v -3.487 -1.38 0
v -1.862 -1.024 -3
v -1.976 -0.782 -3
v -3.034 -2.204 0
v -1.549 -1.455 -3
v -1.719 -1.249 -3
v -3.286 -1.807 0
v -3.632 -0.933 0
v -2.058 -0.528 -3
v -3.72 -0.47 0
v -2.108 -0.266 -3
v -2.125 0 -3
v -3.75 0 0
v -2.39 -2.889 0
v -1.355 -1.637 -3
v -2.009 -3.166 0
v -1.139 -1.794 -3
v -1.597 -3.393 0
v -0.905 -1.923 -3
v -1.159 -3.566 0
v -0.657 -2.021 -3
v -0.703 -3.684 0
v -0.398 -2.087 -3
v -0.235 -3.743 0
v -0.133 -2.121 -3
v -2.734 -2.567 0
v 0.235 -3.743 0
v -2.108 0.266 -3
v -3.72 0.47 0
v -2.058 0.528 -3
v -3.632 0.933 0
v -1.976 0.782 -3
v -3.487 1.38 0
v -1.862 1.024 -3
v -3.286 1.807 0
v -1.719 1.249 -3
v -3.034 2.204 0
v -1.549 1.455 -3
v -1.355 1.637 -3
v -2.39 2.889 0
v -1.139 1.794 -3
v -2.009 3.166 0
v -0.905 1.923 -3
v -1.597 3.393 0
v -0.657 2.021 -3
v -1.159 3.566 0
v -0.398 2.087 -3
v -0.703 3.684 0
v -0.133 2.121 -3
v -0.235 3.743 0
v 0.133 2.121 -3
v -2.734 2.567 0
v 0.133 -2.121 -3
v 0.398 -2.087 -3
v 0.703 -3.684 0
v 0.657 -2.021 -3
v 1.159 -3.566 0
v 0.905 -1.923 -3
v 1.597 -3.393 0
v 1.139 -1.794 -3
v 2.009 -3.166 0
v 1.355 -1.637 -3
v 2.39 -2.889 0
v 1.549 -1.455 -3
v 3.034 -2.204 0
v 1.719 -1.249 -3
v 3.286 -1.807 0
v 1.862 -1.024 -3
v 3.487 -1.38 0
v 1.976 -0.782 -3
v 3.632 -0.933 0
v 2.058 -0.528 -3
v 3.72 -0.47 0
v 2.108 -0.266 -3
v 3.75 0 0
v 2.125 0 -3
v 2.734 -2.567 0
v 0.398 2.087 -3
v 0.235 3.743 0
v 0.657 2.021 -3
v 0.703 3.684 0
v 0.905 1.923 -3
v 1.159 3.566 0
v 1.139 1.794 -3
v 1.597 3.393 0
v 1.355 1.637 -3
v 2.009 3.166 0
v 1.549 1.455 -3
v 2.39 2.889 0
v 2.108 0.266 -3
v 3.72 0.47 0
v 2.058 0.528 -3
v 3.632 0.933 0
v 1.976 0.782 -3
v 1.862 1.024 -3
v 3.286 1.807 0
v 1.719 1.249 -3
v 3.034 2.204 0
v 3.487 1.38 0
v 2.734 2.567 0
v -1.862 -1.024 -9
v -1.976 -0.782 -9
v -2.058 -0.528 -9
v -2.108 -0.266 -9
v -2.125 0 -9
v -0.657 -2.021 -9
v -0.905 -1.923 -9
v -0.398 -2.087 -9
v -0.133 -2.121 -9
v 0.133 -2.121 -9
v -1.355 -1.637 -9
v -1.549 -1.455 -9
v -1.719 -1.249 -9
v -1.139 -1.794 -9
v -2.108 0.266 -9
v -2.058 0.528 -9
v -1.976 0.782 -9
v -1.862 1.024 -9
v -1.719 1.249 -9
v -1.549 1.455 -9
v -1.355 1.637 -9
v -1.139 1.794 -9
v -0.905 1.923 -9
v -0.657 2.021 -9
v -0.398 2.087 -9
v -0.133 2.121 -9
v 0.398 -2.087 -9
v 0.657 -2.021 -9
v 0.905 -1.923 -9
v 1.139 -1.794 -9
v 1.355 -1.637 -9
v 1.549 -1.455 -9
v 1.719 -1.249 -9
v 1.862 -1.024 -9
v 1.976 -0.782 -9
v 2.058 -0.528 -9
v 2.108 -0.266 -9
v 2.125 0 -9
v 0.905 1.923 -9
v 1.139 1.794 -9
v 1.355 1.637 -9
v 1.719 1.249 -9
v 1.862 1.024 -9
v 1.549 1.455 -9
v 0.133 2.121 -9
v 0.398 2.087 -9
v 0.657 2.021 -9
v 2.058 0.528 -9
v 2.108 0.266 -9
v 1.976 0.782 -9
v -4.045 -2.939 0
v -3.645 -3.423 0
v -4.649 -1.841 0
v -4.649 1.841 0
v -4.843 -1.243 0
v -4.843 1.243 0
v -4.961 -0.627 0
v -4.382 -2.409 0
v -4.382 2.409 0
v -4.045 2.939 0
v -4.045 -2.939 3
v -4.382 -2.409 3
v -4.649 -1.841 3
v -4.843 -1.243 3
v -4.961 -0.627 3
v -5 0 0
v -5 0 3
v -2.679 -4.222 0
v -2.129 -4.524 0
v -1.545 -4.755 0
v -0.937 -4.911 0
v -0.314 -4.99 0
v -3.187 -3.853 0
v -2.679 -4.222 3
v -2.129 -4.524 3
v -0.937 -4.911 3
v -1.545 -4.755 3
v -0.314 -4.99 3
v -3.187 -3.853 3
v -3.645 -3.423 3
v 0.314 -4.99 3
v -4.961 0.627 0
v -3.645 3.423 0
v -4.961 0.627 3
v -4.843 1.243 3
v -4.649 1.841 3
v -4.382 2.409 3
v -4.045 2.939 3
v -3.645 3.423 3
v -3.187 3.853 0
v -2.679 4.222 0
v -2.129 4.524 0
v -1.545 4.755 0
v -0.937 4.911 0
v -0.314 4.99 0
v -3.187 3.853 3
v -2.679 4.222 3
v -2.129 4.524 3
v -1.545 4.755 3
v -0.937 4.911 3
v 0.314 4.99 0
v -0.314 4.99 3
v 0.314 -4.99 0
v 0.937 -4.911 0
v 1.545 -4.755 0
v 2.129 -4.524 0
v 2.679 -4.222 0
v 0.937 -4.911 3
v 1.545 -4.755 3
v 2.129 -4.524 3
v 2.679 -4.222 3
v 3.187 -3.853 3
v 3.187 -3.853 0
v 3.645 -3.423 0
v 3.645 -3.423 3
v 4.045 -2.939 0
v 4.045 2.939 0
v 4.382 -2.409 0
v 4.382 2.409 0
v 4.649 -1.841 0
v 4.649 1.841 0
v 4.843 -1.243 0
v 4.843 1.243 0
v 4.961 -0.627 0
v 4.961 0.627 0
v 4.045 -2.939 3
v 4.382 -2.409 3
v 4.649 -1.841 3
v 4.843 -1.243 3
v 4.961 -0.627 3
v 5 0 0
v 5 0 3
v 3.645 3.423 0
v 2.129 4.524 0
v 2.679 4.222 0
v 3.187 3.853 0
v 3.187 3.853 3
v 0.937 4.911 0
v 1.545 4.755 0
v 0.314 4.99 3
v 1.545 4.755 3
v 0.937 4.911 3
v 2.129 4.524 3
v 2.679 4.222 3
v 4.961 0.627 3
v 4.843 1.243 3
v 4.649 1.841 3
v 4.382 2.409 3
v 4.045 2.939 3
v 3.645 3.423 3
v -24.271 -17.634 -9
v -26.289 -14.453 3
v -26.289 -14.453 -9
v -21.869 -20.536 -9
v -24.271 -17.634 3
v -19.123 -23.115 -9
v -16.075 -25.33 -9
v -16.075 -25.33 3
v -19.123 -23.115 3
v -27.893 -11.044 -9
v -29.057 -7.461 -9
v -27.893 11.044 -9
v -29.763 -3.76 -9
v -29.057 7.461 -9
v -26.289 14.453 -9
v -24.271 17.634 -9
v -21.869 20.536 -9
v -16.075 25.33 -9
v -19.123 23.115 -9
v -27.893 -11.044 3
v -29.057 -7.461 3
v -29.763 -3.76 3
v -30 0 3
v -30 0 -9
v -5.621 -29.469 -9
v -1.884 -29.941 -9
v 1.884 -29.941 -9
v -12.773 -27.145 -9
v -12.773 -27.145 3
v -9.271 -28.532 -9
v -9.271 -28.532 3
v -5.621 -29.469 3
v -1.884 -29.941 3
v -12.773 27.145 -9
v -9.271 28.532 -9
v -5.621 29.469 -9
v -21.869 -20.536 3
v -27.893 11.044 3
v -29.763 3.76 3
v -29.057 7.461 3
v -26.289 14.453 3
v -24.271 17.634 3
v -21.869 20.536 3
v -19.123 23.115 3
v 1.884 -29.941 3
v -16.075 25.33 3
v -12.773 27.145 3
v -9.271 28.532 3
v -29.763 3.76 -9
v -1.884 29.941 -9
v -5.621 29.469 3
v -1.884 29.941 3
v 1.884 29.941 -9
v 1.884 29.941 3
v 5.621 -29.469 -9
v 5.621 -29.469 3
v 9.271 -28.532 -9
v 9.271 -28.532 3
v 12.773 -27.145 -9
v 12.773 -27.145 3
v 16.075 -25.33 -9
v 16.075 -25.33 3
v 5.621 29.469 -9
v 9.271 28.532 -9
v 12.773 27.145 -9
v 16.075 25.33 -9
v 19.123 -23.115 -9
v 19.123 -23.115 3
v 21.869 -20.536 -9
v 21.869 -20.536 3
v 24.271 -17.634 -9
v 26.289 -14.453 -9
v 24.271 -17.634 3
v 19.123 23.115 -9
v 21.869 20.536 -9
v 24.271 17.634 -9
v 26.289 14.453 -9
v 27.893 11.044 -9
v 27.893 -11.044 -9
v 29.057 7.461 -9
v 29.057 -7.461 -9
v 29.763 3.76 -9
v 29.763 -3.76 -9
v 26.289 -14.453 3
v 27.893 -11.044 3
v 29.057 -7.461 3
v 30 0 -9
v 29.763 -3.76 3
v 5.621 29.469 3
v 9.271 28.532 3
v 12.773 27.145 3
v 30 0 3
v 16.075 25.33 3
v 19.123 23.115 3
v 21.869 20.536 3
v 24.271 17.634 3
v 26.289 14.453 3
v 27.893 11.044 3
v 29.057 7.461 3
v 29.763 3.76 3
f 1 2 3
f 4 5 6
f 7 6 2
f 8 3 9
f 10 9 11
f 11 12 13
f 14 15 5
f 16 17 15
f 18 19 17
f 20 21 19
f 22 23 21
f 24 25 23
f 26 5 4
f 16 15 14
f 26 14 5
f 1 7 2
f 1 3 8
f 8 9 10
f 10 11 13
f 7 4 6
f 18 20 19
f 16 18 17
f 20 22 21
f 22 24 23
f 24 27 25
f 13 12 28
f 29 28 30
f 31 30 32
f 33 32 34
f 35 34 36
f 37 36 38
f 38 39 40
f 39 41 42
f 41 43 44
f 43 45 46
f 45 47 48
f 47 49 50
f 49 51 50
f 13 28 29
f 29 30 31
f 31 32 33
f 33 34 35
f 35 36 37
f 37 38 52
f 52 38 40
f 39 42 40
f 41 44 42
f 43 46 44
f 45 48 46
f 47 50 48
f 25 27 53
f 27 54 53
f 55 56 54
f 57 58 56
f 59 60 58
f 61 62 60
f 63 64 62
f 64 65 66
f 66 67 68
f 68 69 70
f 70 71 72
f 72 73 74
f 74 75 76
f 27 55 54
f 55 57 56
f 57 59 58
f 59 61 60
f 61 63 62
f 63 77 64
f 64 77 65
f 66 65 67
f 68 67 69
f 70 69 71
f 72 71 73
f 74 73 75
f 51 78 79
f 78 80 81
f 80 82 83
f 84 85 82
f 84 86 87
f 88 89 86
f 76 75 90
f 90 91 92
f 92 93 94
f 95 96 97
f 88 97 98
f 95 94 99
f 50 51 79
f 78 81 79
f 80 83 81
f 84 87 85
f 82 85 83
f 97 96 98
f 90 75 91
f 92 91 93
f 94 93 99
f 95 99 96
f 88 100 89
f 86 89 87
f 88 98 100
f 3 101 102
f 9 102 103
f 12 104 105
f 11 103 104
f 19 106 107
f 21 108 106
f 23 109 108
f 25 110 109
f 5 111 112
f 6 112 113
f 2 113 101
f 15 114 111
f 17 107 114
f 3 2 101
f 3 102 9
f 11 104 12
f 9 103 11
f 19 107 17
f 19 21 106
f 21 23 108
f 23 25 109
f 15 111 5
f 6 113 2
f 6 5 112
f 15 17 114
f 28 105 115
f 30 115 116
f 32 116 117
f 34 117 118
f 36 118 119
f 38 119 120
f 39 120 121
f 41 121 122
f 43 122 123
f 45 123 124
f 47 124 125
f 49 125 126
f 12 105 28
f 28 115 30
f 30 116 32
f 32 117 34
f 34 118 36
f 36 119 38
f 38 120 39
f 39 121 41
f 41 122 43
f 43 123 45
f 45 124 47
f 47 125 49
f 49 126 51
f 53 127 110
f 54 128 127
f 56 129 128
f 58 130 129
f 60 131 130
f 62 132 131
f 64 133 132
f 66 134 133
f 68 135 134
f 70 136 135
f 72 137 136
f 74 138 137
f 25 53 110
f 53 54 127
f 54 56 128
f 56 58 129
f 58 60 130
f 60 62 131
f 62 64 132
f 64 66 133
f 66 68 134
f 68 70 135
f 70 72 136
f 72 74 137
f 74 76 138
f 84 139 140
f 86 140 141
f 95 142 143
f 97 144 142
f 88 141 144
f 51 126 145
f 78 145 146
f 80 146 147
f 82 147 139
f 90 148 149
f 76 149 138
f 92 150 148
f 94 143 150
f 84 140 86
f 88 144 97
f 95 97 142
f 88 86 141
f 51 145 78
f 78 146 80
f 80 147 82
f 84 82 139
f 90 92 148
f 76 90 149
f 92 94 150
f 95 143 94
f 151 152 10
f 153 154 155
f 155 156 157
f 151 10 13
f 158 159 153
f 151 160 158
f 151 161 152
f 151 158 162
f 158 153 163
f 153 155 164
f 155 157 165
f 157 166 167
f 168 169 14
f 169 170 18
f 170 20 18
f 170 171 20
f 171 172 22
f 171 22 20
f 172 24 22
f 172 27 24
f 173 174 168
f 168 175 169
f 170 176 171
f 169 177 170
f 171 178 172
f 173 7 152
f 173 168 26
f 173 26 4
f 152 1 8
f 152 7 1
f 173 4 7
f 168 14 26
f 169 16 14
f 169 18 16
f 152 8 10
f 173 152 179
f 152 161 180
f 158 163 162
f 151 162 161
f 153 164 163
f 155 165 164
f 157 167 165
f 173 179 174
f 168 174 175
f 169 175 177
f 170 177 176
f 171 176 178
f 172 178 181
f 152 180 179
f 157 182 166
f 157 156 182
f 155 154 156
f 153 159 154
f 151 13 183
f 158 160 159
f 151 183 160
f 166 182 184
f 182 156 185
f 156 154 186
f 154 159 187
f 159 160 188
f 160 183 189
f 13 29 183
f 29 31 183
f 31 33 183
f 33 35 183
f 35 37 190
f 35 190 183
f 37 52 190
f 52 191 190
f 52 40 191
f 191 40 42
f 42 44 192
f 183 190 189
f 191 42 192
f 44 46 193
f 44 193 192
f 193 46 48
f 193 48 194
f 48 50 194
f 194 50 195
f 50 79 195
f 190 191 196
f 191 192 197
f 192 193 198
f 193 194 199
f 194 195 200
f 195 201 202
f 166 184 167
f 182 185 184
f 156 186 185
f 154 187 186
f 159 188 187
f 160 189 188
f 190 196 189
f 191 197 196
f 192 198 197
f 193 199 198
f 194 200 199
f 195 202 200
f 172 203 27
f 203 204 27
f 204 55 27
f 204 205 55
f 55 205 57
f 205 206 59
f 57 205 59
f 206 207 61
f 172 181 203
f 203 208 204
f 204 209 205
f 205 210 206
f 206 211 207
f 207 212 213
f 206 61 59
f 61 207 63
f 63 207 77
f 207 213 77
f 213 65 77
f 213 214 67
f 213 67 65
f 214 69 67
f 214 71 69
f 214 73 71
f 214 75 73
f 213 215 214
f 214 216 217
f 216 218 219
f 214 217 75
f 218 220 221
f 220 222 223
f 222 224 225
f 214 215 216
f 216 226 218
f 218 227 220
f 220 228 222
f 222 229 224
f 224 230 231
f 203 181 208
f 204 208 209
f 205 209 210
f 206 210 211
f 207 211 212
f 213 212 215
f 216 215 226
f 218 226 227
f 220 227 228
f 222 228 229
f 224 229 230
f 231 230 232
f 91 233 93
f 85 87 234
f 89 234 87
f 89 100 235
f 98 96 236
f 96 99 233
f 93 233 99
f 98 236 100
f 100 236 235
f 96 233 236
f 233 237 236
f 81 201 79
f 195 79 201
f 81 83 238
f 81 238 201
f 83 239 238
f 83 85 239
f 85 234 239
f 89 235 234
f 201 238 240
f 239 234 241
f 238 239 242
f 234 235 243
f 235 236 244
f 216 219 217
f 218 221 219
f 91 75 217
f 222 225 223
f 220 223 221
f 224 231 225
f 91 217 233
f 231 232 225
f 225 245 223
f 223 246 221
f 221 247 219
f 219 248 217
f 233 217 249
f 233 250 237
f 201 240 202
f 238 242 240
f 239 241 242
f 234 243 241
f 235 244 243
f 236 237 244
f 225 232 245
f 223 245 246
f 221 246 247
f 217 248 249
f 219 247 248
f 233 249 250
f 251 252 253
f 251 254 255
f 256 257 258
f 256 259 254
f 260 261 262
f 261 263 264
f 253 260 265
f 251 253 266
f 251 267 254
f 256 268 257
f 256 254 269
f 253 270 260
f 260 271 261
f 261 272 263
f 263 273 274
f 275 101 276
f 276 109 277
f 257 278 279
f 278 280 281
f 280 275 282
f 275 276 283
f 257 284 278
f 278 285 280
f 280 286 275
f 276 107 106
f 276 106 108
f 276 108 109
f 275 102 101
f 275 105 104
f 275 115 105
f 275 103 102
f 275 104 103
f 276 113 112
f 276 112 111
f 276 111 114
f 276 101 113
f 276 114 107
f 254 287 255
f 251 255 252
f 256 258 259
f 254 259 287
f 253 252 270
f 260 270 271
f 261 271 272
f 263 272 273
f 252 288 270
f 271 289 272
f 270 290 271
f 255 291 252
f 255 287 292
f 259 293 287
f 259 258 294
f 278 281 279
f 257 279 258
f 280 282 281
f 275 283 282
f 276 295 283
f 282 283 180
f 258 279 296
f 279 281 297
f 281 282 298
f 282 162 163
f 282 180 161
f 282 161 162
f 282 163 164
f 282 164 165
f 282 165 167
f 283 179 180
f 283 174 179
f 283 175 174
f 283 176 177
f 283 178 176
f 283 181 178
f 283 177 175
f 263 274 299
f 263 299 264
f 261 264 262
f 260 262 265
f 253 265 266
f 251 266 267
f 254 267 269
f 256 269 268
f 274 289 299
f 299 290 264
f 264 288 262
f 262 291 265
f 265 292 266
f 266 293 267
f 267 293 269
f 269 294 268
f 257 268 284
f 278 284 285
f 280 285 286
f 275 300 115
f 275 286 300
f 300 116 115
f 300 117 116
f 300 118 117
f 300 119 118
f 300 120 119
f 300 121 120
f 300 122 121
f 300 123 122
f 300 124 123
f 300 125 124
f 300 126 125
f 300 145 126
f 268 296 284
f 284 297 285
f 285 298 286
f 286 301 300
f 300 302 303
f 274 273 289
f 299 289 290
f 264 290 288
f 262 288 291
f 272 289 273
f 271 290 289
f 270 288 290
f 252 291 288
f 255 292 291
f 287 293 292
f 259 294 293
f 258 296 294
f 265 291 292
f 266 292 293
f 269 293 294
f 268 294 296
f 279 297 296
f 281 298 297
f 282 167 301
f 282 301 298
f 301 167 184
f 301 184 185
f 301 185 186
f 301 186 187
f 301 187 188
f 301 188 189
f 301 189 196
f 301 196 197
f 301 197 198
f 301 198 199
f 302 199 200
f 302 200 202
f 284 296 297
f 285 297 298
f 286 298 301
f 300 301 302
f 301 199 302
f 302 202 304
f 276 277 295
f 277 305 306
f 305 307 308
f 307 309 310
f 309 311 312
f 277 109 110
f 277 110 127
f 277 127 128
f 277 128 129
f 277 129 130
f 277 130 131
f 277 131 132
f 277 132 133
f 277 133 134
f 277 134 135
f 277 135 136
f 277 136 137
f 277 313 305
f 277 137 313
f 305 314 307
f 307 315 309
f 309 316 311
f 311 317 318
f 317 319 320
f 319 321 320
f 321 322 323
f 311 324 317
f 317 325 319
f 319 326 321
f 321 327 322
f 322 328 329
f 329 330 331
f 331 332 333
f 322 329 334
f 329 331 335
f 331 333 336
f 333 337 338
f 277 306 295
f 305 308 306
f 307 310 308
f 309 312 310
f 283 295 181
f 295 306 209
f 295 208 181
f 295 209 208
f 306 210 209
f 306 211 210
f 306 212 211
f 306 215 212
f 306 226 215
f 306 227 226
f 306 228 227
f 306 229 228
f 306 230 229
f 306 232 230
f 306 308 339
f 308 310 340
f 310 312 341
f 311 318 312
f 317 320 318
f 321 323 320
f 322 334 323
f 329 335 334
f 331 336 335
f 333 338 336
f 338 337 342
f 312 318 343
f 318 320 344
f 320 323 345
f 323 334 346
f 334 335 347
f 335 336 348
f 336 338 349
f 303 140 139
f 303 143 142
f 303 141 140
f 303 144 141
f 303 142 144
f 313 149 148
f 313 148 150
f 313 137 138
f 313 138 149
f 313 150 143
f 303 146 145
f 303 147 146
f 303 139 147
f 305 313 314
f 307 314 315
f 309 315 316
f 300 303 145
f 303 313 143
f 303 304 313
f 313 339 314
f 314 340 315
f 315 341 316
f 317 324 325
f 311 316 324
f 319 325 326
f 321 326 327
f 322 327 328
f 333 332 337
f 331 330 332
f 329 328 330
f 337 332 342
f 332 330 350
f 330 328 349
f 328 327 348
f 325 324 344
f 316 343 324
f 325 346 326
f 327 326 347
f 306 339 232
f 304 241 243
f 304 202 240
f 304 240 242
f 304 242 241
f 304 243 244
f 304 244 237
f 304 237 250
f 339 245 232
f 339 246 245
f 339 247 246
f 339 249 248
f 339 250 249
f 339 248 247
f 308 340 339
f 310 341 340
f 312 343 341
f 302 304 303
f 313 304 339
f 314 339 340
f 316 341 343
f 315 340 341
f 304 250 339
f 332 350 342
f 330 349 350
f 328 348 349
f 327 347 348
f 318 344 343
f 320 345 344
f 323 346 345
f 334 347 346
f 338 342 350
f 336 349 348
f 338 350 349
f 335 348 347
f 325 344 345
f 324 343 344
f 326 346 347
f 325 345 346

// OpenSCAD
$fn = 50;

difference() {
	union() {
		translate(v = [0, 0, -9.0]) {
			cylinder(h = 12, r = 30.0);
		}
	}
	union() {
		translate(v = [0, 0, 0]) {
			rotate(a = [0, 0, 0]) {
				difference() {
					union() {
						translate(v = [0, 0, -12.0]) {
							cylinder(h = 12, r = 2.0);
						}
						translate(v = [0, 0, -3]) {
							cylinder(h = 3, r1 = 2.125, r2 = 3.75);
						}
						translate(v = [0, 0, -12.0]) {
							cylinder(h = 12, r = 2.125);
						}
						translate(v = [0, 0, -12.0]) {
							cylinder(h = 12, r = 2.0);
						}
					}
					union();
				}
			}
		}
		#cylinder(h = 3, r = 5.0);
	}
}
